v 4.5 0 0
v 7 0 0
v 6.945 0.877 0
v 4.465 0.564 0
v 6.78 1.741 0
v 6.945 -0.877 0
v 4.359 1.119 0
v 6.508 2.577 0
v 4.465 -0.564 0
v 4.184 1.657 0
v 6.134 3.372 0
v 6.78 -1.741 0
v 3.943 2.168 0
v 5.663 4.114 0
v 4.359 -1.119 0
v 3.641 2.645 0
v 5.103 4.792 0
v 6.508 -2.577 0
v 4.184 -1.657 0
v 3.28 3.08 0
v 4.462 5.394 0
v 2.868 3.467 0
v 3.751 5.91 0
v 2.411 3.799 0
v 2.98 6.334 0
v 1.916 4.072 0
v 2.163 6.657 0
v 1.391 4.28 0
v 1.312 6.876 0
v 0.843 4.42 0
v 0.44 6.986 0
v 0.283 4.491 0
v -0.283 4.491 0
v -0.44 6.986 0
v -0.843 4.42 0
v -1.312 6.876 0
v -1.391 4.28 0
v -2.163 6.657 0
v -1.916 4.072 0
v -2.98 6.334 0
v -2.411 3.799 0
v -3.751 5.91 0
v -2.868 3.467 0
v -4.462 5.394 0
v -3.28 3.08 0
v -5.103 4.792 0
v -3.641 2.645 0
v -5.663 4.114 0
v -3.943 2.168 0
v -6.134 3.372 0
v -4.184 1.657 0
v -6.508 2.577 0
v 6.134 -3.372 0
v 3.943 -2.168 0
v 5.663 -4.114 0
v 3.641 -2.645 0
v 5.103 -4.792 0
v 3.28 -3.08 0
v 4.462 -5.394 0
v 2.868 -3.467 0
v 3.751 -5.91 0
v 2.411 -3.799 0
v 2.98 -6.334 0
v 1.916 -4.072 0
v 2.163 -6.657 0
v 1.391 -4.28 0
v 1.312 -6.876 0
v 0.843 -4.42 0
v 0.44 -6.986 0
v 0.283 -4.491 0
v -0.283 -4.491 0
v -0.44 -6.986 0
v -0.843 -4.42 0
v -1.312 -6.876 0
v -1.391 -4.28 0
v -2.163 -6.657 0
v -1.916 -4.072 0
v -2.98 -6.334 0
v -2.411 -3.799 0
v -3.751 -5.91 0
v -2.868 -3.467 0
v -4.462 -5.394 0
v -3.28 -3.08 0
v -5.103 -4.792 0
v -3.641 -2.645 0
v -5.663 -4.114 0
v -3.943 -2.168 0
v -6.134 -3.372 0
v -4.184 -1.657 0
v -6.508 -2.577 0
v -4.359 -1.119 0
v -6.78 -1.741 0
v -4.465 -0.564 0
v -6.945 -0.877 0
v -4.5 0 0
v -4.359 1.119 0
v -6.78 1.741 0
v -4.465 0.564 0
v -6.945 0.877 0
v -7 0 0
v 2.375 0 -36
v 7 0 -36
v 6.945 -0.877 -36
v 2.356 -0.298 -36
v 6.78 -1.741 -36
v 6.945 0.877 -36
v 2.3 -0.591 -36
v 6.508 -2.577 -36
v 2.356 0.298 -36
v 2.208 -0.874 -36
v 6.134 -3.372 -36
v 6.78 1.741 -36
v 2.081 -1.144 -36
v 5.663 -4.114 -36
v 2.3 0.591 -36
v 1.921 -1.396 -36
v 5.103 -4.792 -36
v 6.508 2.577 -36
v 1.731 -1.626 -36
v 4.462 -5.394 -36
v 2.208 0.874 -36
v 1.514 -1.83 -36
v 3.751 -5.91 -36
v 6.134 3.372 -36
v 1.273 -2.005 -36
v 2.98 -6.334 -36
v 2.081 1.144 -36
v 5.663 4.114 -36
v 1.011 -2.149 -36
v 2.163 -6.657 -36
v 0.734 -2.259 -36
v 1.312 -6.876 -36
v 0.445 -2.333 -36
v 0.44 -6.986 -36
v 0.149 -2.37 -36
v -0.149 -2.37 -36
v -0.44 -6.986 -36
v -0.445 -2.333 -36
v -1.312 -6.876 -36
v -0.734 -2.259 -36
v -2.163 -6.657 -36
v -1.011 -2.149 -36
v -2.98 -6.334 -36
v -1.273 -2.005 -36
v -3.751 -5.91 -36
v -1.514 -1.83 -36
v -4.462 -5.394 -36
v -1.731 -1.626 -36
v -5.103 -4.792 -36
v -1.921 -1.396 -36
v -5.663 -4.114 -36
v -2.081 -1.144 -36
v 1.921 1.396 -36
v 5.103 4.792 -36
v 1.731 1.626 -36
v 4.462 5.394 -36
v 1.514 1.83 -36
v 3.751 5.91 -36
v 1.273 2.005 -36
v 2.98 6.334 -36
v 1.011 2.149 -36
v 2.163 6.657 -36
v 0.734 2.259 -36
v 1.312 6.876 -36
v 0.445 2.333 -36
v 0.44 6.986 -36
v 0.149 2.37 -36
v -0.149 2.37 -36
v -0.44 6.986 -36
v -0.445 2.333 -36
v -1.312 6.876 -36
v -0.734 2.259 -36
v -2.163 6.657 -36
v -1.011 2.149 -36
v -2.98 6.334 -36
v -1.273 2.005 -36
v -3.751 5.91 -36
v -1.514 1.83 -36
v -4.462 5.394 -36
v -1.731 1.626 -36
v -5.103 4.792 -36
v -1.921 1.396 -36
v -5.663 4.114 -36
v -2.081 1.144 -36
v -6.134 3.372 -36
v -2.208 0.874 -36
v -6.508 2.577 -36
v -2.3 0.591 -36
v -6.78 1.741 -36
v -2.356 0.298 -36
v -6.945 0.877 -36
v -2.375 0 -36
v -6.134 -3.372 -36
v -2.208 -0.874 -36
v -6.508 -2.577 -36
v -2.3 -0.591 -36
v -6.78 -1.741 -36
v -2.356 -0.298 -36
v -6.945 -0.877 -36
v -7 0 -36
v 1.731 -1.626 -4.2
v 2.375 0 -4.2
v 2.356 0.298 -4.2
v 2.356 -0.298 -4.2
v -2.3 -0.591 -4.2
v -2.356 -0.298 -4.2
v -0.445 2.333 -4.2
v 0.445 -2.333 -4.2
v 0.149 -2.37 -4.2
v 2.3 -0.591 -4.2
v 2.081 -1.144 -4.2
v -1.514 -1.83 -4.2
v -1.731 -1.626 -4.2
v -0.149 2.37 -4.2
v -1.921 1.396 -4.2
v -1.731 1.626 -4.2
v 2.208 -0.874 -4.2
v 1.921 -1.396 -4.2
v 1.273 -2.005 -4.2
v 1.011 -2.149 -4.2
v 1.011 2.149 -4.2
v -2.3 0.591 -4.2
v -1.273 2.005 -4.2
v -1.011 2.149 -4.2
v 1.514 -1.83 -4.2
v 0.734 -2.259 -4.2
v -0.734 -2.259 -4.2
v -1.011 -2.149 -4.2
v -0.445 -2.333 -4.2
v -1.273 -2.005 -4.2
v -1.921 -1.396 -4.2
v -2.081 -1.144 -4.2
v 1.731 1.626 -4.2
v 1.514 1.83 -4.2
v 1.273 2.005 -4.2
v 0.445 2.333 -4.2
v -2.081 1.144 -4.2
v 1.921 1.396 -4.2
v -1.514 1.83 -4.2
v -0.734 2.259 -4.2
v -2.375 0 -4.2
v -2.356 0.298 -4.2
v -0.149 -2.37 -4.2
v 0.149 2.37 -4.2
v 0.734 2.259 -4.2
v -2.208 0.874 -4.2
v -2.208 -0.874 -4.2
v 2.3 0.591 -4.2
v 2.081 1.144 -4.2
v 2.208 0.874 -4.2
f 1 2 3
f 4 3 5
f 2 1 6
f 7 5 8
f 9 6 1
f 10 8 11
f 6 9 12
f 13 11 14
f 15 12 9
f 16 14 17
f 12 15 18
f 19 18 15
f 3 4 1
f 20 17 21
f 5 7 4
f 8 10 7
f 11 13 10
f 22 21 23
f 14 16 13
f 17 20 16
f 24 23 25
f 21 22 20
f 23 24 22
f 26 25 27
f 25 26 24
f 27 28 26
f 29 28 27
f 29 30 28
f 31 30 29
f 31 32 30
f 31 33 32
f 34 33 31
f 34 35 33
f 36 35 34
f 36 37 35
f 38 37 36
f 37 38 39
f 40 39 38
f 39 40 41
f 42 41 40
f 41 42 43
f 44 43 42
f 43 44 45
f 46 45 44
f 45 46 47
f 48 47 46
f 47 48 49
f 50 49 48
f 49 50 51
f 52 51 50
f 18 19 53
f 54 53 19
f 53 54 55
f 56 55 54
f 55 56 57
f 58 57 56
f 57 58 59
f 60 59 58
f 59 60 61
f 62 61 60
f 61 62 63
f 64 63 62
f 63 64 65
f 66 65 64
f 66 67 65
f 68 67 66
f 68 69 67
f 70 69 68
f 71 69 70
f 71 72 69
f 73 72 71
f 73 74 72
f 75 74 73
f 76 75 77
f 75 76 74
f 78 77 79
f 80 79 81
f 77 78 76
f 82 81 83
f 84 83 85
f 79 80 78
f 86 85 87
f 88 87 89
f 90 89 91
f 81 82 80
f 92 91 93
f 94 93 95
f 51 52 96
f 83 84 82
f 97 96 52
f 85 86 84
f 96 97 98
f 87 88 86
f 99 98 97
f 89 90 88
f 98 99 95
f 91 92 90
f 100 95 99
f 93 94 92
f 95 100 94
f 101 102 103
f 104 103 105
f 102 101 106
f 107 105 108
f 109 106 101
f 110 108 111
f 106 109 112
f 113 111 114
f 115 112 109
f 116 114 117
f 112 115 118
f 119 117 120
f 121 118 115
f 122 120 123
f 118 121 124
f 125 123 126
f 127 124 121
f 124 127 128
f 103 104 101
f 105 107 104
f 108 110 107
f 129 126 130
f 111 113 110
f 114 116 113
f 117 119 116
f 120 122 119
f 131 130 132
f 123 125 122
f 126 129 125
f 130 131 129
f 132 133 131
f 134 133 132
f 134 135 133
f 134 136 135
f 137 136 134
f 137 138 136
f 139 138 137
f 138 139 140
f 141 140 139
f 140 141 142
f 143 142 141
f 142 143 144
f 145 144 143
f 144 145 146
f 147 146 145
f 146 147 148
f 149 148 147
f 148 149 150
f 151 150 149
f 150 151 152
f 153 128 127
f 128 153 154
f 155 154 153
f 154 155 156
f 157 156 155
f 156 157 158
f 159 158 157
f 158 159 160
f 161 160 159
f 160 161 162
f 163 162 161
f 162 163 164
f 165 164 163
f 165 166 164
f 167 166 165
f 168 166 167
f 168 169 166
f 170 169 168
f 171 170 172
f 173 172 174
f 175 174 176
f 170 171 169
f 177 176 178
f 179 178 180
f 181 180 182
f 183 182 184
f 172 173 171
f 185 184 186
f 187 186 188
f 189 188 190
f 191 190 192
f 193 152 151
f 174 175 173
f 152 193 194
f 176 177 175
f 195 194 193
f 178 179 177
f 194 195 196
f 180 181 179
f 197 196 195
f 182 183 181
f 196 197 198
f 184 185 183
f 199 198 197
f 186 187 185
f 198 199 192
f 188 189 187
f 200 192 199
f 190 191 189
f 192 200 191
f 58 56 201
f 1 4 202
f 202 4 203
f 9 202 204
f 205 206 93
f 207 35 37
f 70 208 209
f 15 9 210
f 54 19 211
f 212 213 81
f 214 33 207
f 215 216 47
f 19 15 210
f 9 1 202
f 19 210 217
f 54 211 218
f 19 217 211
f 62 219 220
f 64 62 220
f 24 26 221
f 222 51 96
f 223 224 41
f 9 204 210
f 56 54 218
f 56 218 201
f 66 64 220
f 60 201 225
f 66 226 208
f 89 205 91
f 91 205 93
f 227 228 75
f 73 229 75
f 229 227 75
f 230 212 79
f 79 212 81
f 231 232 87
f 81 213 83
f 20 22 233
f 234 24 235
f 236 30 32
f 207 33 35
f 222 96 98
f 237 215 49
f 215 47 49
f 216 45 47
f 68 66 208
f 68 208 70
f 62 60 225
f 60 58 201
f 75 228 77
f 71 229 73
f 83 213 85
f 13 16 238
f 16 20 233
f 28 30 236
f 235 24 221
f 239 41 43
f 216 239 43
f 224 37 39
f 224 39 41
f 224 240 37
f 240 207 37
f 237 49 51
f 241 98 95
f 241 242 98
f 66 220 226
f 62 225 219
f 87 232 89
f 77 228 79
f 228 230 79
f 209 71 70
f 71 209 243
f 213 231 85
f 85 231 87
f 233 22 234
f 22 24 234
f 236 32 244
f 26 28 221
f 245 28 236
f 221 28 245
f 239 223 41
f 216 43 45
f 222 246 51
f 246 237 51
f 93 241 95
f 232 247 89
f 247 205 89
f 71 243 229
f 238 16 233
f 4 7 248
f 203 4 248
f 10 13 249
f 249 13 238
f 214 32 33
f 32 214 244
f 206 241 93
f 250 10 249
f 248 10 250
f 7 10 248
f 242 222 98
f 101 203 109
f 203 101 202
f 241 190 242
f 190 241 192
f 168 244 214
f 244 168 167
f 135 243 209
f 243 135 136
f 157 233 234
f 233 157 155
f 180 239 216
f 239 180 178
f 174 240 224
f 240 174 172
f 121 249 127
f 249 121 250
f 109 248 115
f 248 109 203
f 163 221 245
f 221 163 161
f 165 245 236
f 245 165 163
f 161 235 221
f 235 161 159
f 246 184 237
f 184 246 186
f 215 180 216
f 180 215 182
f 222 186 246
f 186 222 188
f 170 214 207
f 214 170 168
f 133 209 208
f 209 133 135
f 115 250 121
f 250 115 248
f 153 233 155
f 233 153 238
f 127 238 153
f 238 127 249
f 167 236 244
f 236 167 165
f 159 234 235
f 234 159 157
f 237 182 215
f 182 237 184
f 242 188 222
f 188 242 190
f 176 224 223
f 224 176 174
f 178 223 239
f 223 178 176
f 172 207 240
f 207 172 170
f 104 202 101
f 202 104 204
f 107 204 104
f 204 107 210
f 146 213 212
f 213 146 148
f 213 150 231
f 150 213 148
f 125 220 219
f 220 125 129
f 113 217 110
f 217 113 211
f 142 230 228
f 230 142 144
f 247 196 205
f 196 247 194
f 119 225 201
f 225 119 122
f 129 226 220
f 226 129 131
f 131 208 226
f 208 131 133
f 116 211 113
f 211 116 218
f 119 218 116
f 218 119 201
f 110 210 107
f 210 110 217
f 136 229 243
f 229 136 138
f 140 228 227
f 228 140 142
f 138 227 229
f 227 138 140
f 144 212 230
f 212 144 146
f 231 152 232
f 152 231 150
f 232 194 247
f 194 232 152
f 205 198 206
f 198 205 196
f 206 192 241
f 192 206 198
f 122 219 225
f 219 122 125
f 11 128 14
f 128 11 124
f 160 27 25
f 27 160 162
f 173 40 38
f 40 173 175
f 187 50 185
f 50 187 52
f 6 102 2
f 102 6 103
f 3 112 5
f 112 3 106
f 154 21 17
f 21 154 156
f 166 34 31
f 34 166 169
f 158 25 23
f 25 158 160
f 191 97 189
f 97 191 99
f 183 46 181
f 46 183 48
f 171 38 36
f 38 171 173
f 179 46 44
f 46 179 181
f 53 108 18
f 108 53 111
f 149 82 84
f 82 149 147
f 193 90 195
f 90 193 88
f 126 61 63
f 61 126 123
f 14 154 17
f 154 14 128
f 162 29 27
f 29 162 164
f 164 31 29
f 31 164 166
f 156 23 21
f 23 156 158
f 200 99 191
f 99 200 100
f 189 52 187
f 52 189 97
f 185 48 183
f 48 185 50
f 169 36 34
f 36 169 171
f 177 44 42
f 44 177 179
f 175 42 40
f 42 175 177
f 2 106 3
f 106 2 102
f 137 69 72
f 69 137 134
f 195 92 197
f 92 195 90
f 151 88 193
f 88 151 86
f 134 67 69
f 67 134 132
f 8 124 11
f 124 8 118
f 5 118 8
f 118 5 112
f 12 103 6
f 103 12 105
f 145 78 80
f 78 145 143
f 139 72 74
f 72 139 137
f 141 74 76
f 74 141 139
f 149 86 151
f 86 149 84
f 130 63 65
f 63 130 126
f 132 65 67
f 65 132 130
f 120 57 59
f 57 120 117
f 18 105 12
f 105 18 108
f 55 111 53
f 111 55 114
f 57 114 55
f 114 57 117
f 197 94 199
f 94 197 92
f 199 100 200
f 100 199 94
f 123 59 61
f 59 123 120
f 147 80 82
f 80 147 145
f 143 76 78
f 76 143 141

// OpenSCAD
$fn = 50;


difference() {
	union() {
		translate(v = [0, 0, -36.0000000000]) {
			cylinder(h = 36, r = 7.0000000000);
		}
		cylinder(h = 0, r = 10.0000000000);
	}
	union() {
		translate(v = [0, 0, 0]) {
			rotate(a = [0, 0, 0]) {
				difference() {
					union() {
						#translate(v = [0, 0, -36.0000000000]) {
							cylinder(h = 36, r = 2.2500000000);
						}
						#translate(v = [0, 0, -4.2000000000]) {
							cylinder(h = 4.2000000000, r1 = 2.3750000000, r2 = 4.5000000000);
						}
						#translate(v = [0, 0, -36.0000000000]) {
							cylinder(h = 36, r = 2.3750000000);
						}
						#translate(v = [0, 0, -36.0000000000]) {
							cylinder(h = 36, r = 2.2500000000);
						}
					}
					union();
				}
			}
		}
	}
}
